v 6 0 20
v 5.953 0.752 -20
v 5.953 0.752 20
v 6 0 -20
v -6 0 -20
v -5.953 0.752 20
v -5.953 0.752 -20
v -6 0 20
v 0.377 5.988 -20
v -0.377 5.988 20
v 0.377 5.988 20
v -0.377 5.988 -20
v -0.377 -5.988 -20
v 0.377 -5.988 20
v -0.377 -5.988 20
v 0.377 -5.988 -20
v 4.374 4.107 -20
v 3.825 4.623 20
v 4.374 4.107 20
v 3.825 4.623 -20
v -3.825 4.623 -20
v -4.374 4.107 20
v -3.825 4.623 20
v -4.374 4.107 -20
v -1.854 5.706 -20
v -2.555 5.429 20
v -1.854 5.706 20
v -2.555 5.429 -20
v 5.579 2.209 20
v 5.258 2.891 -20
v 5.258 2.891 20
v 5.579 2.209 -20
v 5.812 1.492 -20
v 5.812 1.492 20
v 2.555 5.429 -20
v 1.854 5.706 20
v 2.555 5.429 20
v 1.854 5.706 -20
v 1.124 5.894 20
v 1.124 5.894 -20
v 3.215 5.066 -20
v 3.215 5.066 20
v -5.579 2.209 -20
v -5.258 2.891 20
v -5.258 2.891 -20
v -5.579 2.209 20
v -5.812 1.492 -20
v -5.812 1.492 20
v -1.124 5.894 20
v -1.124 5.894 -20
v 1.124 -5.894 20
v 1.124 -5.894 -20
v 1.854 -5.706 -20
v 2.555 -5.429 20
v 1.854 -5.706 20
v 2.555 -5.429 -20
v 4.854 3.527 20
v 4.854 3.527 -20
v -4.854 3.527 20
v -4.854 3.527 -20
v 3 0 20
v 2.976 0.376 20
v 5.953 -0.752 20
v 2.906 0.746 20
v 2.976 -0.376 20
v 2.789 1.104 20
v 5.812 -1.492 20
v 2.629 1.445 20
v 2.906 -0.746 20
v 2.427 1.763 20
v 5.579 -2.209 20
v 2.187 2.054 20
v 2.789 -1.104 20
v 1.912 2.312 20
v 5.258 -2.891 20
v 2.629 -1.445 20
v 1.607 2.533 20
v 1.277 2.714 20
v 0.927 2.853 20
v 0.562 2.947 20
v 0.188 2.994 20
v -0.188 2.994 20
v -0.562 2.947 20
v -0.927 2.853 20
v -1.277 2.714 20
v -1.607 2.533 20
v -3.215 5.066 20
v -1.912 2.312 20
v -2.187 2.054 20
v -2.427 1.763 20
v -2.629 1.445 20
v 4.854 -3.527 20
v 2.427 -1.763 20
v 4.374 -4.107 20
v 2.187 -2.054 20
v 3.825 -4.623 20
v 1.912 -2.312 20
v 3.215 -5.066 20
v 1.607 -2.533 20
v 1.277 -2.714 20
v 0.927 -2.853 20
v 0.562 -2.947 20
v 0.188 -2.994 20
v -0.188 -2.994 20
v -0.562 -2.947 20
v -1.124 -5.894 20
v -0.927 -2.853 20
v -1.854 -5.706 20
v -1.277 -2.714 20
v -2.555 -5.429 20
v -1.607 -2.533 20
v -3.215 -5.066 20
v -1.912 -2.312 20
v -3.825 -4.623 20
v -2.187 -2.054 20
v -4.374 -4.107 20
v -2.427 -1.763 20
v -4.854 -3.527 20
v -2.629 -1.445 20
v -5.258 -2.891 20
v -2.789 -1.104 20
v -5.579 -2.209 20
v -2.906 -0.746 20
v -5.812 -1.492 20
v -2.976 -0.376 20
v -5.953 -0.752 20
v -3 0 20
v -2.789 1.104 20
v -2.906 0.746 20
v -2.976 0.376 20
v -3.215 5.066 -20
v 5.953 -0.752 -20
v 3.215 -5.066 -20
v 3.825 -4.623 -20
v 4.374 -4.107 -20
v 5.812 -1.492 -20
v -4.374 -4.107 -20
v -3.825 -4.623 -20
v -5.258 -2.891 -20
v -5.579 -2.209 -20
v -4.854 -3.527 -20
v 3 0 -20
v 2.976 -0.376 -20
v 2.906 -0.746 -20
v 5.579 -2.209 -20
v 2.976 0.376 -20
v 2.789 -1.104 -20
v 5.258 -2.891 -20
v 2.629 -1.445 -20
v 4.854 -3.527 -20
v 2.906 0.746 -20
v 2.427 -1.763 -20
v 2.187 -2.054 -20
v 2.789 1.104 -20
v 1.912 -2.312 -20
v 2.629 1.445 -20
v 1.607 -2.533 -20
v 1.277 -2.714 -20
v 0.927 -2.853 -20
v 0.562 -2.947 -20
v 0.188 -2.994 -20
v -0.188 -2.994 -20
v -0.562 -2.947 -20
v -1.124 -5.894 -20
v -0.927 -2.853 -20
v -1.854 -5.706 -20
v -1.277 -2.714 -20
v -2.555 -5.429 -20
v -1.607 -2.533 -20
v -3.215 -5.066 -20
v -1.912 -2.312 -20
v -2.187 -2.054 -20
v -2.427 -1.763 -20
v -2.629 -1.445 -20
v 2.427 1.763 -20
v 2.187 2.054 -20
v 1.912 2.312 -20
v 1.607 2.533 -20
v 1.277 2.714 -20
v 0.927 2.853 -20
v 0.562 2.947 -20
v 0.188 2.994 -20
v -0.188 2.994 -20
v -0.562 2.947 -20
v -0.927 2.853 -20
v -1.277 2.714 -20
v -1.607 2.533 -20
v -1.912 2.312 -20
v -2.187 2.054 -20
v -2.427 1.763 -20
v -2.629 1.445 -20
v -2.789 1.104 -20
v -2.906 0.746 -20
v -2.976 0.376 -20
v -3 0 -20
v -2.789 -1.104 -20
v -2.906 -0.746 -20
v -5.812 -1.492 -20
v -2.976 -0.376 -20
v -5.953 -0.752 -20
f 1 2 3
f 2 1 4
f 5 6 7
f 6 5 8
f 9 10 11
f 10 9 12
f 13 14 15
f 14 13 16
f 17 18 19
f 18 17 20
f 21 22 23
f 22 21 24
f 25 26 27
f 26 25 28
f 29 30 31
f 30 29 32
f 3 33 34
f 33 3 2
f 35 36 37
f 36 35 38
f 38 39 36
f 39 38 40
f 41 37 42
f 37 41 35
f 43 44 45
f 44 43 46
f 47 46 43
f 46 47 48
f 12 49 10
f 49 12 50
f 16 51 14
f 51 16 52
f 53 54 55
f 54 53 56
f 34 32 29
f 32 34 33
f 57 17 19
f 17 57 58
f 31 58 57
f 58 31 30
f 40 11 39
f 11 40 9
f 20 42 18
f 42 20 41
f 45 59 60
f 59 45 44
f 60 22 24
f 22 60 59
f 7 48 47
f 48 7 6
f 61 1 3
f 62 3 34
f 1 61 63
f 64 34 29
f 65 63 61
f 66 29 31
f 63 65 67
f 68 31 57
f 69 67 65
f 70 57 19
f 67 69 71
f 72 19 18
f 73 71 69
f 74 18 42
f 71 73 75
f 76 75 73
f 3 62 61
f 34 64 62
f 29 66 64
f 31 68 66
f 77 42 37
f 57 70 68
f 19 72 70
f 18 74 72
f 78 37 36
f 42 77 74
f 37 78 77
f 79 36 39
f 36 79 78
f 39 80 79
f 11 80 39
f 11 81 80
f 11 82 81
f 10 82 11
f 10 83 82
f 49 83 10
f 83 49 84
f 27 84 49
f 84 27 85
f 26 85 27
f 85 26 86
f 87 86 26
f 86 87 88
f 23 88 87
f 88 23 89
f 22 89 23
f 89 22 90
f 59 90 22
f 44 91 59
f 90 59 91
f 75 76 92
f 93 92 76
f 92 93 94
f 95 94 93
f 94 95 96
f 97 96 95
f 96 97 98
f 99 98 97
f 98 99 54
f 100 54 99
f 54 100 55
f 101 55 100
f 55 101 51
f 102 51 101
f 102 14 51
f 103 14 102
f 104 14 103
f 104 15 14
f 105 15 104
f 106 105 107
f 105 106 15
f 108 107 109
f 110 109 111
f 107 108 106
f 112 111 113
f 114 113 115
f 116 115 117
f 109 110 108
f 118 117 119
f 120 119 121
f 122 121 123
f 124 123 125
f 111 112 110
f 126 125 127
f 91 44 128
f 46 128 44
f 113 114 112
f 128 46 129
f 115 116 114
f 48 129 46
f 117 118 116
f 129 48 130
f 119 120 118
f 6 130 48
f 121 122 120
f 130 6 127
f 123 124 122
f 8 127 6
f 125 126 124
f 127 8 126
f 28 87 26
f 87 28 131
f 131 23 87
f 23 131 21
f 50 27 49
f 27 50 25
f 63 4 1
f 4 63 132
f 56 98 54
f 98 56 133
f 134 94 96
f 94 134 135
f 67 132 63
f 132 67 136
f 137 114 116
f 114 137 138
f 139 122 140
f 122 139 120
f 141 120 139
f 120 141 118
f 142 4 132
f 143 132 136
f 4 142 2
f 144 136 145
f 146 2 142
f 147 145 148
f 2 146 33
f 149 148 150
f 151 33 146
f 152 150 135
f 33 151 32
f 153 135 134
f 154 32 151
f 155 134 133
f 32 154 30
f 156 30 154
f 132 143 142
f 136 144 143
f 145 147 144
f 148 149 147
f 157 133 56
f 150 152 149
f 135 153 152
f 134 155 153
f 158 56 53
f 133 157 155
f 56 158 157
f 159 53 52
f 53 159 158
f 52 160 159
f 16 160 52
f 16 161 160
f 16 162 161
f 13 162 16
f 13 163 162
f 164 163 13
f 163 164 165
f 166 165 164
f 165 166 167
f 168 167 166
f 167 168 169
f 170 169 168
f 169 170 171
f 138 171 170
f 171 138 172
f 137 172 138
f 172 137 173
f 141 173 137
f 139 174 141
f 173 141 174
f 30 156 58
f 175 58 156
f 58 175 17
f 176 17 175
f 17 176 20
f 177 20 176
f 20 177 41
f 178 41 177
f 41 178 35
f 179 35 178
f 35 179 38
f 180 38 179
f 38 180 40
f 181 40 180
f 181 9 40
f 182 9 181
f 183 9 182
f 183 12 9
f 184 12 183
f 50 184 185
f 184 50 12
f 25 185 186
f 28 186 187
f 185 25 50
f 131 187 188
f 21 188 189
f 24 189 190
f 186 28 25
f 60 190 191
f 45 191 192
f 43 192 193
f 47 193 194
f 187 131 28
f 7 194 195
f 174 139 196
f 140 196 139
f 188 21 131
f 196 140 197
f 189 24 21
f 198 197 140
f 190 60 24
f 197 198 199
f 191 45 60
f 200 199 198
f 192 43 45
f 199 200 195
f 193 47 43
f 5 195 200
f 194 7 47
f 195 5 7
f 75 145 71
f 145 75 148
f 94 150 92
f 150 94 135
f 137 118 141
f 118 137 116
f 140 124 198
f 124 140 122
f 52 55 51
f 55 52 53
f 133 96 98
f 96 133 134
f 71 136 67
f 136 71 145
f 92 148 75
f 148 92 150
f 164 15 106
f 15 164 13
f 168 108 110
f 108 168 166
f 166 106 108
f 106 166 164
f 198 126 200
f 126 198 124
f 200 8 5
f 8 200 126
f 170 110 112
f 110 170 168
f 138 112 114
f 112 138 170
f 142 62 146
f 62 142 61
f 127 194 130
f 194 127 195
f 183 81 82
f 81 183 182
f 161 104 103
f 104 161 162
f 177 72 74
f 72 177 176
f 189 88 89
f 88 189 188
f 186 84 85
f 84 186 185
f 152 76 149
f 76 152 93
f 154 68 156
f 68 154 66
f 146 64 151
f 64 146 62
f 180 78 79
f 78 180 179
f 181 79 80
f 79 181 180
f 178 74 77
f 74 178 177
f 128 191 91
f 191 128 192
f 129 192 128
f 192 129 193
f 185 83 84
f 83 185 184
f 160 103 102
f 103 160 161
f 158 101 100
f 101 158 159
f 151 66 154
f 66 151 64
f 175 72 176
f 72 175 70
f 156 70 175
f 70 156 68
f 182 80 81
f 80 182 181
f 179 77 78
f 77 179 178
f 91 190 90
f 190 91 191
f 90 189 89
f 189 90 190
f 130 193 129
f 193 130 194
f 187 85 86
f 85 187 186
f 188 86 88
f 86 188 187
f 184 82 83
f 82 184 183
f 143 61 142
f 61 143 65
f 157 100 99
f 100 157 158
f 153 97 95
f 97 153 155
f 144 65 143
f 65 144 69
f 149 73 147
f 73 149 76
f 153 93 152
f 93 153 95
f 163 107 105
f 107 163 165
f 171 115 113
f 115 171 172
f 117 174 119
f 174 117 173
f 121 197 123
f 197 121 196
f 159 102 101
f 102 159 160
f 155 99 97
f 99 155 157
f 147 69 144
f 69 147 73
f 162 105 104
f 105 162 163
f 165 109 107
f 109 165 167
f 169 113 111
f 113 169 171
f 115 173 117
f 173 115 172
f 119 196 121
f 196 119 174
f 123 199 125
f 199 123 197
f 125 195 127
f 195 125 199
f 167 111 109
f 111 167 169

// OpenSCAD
$fn = 50;


difference() {
	union() {
		translate(v = [0, 0, -20.0000000000]) {
			cylinder(h = 40, r = 6.0000000000);
		}
	}
	union() {
		translate(v = [0, 0, -100.0000000000]) {
			cylinder(h = 200, r = 3);
		}
	}
}
